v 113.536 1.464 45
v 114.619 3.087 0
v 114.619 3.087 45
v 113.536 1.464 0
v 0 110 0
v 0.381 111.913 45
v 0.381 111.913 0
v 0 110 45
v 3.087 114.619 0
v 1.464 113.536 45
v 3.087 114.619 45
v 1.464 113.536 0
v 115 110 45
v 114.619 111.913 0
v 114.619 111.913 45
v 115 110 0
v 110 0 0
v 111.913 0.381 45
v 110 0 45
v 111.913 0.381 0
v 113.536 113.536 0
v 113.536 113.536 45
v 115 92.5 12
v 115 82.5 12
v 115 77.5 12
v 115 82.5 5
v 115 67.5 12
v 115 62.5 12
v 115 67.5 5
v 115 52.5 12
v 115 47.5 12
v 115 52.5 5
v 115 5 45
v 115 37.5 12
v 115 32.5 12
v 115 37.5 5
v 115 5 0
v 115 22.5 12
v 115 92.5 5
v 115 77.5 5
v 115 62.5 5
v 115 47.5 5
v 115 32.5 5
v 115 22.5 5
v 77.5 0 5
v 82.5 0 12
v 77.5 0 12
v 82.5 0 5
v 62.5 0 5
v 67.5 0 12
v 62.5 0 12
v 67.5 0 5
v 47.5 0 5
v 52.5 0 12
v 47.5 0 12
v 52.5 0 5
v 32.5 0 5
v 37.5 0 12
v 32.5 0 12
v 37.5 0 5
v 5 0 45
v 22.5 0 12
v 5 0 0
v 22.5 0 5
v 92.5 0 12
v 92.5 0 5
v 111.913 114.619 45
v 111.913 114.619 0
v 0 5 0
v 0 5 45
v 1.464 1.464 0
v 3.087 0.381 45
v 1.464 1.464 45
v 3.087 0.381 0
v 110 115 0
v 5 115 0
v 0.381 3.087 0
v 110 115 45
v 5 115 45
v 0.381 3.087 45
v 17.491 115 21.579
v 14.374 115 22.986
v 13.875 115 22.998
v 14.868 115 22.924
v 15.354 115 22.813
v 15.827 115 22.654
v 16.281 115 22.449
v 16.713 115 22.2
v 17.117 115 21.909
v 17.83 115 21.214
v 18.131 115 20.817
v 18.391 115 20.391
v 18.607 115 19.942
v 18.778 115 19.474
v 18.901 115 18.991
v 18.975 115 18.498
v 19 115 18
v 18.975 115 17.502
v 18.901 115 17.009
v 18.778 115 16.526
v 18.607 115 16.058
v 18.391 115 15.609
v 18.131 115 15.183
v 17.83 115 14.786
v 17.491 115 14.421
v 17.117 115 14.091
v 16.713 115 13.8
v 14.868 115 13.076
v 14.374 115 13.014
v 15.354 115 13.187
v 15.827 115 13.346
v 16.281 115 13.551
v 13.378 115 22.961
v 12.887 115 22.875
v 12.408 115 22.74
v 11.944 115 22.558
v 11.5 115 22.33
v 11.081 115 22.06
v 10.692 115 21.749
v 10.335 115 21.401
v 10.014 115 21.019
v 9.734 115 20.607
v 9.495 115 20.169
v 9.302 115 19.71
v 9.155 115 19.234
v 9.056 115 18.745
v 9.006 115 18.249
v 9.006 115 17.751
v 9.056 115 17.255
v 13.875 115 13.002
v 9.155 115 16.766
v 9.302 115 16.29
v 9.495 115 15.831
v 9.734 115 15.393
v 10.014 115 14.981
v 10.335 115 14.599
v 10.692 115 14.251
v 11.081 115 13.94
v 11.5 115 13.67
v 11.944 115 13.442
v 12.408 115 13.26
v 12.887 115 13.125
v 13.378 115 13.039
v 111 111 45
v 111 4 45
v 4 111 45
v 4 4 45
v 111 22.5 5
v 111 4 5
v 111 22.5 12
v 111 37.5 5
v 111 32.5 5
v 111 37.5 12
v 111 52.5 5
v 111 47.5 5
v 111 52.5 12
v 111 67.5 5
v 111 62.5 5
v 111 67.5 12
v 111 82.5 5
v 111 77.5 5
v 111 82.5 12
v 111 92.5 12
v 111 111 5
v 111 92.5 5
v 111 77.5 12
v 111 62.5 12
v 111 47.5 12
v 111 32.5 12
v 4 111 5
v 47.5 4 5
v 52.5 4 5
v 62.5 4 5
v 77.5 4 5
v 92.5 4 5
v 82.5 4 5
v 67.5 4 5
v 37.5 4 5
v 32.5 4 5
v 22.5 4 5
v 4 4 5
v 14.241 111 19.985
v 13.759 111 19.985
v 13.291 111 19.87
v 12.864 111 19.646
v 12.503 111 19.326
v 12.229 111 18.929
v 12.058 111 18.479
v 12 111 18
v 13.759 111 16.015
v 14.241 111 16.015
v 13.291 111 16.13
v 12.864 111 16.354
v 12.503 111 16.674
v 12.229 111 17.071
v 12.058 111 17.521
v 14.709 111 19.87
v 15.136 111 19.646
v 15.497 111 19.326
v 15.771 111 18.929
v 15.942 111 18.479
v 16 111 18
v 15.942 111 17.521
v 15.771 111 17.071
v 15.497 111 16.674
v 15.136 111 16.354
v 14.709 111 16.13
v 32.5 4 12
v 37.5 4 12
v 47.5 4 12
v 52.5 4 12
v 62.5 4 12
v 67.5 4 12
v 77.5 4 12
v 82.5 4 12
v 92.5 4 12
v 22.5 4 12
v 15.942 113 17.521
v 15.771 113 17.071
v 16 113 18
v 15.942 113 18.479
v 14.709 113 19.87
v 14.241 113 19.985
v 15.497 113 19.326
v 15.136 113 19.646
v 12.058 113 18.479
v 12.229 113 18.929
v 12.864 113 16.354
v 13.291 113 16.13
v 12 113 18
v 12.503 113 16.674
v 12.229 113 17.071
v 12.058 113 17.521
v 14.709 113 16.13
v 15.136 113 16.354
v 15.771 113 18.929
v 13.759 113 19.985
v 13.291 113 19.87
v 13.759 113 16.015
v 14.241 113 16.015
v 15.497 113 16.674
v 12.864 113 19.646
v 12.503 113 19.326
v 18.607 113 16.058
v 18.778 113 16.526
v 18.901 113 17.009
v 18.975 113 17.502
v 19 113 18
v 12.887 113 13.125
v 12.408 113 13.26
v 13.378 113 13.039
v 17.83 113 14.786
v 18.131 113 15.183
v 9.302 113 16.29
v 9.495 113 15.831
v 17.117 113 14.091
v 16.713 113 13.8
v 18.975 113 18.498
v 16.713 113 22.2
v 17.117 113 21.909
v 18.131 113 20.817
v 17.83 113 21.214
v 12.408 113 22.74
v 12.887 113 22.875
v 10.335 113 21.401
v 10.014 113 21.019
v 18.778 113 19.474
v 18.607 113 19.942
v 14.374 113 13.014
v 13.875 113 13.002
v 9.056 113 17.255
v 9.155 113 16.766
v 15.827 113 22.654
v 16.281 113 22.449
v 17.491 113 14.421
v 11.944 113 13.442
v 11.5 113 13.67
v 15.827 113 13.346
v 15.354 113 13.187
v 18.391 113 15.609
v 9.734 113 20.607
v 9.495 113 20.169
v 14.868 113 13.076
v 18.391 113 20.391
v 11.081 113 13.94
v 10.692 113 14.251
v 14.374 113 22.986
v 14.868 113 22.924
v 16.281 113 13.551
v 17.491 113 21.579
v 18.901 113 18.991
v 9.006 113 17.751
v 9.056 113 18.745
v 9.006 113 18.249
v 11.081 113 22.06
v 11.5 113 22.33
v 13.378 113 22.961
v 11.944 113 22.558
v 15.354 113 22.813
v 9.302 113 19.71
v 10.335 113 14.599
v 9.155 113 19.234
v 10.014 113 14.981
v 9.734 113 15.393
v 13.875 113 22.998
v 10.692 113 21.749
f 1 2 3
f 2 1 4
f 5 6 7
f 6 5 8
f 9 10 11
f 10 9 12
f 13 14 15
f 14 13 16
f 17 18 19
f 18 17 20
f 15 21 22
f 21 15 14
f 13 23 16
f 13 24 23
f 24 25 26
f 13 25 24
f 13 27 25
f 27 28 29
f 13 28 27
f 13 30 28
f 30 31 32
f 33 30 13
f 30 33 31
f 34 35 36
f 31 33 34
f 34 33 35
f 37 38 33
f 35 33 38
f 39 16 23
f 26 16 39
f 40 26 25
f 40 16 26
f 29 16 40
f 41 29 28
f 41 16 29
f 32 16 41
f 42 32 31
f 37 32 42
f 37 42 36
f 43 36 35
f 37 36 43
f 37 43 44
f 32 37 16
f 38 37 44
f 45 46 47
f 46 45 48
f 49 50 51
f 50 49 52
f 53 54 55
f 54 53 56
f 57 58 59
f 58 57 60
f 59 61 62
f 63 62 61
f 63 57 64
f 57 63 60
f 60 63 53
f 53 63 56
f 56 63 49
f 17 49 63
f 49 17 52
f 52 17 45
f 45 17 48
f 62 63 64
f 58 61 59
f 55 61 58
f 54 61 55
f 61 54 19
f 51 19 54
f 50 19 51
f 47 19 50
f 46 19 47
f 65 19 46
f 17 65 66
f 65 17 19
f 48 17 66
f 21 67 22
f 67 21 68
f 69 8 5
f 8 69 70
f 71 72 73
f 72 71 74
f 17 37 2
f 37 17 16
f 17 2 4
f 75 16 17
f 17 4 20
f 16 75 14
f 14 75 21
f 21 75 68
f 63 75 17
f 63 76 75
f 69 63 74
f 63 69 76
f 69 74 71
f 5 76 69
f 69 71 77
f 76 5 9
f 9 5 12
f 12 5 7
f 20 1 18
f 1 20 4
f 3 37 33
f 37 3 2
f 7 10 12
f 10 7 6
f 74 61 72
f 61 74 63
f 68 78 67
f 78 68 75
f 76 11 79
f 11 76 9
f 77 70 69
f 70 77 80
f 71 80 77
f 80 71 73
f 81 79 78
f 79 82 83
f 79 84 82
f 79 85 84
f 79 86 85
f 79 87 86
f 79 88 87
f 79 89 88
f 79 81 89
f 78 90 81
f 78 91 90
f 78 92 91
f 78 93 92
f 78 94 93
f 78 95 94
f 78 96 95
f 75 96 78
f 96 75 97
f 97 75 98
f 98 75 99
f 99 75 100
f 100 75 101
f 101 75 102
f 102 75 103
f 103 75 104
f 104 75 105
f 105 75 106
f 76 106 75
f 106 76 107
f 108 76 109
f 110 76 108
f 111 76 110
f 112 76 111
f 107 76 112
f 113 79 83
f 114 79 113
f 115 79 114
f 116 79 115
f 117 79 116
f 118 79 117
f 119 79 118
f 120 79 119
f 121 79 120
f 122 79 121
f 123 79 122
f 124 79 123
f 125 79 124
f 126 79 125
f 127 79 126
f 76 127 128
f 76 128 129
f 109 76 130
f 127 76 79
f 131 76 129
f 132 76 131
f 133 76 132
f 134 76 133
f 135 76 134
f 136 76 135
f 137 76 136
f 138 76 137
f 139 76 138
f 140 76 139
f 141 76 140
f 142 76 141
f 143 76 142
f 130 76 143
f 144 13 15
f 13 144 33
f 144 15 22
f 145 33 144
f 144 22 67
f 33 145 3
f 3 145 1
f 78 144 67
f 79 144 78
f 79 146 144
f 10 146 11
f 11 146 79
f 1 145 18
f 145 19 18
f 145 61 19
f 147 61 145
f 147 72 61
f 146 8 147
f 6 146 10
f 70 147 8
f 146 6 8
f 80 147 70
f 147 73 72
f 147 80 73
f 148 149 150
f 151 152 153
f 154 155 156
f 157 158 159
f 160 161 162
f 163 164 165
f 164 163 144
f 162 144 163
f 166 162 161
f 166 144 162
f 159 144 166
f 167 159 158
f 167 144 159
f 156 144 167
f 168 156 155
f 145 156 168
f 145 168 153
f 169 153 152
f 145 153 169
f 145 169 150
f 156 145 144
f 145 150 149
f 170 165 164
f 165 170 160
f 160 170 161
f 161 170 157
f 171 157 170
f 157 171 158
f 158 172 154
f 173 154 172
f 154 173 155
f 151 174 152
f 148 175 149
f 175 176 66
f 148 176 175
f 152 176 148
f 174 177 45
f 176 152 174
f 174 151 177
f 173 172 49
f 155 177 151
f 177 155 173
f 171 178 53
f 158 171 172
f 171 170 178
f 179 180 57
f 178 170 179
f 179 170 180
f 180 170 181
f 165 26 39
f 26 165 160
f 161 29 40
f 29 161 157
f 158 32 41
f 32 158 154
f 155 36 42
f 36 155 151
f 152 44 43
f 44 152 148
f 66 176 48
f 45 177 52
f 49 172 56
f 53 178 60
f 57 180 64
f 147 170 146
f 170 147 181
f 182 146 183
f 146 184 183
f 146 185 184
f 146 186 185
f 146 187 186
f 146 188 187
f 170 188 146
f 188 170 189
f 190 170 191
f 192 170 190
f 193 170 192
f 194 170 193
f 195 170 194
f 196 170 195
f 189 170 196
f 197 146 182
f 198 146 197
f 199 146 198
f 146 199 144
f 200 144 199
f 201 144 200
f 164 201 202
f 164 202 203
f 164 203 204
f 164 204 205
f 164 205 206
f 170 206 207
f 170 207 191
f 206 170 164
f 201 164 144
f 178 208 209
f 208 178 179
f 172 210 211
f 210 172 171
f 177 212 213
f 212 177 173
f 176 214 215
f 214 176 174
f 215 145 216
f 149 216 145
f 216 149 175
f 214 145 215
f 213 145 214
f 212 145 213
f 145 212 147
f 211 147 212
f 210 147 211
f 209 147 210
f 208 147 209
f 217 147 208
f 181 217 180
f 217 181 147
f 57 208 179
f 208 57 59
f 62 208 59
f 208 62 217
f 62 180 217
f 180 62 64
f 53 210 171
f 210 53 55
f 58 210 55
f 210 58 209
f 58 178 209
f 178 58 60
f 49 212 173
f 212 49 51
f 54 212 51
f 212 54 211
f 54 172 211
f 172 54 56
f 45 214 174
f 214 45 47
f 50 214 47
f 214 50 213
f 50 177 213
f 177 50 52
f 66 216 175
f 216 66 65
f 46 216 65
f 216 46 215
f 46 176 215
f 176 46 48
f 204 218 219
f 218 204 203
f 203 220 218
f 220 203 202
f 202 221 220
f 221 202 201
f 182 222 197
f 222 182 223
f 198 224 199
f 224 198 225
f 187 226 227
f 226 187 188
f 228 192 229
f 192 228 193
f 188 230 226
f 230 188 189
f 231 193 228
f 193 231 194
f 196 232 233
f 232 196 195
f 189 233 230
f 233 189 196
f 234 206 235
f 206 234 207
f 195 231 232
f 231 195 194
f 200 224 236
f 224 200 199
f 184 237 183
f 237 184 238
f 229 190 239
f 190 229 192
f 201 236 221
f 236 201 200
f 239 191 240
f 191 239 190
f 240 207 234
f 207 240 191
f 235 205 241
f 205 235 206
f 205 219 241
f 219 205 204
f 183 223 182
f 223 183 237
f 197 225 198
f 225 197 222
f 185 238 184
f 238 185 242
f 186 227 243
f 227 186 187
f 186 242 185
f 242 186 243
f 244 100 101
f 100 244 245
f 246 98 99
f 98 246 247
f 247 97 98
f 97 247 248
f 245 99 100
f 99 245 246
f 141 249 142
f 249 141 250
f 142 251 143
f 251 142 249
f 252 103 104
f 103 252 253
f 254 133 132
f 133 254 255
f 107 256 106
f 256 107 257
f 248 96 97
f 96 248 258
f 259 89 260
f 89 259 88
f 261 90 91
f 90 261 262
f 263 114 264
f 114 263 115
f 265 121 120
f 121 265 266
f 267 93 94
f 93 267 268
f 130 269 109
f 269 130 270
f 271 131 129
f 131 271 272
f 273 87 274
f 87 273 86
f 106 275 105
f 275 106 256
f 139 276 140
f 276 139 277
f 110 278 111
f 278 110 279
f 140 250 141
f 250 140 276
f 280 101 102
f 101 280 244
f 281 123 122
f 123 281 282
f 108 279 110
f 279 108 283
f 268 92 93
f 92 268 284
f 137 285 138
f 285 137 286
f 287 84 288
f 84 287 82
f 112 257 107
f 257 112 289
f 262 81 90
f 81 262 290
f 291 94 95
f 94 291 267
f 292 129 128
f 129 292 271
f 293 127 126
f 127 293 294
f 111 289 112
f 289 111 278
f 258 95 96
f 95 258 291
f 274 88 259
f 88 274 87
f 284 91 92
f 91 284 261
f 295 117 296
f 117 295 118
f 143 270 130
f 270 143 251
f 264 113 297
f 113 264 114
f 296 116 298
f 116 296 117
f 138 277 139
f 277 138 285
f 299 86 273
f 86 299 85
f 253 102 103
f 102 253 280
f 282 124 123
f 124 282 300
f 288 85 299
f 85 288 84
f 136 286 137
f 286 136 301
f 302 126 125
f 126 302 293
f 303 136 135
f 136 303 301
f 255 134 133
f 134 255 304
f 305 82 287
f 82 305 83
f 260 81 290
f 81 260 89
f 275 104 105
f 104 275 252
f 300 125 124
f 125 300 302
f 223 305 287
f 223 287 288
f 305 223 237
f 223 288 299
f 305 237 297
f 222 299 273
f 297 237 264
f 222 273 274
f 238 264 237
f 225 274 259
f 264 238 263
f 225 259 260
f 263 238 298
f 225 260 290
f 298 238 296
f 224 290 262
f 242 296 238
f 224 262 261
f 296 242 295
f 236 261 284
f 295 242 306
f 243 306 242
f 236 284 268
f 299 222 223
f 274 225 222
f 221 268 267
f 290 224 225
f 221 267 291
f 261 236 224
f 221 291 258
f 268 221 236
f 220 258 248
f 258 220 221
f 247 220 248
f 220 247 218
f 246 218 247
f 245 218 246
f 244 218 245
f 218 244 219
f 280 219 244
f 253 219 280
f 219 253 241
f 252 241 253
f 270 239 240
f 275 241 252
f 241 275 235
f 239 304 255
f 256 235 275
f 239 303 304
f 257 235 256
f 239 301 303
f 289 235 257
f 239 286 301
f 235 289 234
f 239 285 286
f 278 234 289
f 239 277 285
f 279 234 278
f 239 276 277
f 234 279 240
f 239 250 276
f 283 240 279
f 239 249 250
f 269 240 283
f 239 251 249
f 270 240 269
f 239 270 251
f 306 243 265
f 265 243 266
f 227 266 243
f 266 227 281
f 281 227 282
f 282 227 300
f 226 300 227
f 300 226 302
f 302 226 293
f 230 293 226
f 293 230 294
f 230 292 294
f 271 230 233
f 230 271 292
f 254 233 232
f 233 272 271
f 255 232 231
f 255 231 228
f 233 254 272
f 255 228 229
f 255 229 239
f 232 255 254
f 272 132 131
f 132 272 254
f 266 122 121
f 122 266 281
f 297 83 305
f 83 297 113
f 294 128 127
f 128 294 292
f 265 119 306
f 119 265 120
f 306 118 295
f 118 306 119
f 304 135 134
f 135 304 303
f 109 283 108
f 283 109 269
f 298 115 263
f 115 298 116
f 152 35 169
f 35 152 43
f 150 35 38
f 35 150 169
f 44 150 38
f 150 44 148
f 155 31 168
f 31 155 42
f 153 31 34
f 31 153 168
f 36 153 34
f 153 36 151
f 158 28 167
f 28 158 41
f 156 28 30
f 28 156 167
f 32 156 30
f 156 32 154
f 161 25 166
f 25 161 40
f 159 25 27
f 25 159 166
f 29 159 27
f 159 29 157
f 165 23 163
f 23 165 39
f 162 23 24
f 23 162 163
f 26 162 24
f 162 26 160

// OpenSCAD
difference() {
    difference() {
        main();
        translate ([0, 0, 5]) {
            plant_adapters();
        }
    }
    translate([14, 110, 18]) {
        solar_power_in();
    }
    translate([130,0,5]) {
        rotate(90) {
            plugins();
        }
    }
}

power_adapter = 5;

///////////////////
// Plant Adapter //
///////////////////
module plant_adapters() {
    adapter_width = 10;
    count = 5;
    space = 5;
    max_width = 115;
    
    width = (space * (count - 1)) + (adapter_width * 5);
    offset = (max_width - width) / 2;
    
    union() {
        for ( i = [0:4] ) {
            translate([((adapter_width + space) * i) + offset, 0, 0]) {
                m5_adapter();
            }
        }
    }
    
}

module m5_adapter() {
    height = 7;
    length = 10;
    width = 24;
    
    cube([length, width, height]);  
}

/////////////
// Plugins //
/////////////
module plugins() {
    adapter_width = 10;
    count = 5;
    space = 5;
    max_width = 115;
    
    width = (space * (count - 1)) + (adapter_width * 5);
    offset = (max_width - width) / 2;
    
    union() {
        for ( i = [0:count-1] ) {
            translate([((adapter_width + space) * i) + offset, 0, 0]) {
                m5_adapter();
            }
        }
    }
}

//////////
// Case //
//////////
module main() {
    translate ([5, 5, 0]) {
        difference()
        {
            main_positiv();
            main_negativ();
        }
    }
}

module main_negativ() {
    translate ([-1, -1, 5]) {
        cube([107, 107, 40]);
    }
}

module main_positiv() {
    minkowski() {
        cube([105, 105, 40]);
        cylinder(r=5,h=5);
    }
}



///////////
// SOLAR //
///////////
module solar_power_in() {
    r = 2;
    y = 10;
    
    translate ([0, 0, 0]) {
        rotate ([270,0,0]) {
            cylinder(h = 10, r=2, $fa=0.5, $fs=0.5);
            translate([0,0,3]) {
                cylinder(h = 2, r=5, $fa=0.5, $fs=0.5);
            }
        }
    }
}
